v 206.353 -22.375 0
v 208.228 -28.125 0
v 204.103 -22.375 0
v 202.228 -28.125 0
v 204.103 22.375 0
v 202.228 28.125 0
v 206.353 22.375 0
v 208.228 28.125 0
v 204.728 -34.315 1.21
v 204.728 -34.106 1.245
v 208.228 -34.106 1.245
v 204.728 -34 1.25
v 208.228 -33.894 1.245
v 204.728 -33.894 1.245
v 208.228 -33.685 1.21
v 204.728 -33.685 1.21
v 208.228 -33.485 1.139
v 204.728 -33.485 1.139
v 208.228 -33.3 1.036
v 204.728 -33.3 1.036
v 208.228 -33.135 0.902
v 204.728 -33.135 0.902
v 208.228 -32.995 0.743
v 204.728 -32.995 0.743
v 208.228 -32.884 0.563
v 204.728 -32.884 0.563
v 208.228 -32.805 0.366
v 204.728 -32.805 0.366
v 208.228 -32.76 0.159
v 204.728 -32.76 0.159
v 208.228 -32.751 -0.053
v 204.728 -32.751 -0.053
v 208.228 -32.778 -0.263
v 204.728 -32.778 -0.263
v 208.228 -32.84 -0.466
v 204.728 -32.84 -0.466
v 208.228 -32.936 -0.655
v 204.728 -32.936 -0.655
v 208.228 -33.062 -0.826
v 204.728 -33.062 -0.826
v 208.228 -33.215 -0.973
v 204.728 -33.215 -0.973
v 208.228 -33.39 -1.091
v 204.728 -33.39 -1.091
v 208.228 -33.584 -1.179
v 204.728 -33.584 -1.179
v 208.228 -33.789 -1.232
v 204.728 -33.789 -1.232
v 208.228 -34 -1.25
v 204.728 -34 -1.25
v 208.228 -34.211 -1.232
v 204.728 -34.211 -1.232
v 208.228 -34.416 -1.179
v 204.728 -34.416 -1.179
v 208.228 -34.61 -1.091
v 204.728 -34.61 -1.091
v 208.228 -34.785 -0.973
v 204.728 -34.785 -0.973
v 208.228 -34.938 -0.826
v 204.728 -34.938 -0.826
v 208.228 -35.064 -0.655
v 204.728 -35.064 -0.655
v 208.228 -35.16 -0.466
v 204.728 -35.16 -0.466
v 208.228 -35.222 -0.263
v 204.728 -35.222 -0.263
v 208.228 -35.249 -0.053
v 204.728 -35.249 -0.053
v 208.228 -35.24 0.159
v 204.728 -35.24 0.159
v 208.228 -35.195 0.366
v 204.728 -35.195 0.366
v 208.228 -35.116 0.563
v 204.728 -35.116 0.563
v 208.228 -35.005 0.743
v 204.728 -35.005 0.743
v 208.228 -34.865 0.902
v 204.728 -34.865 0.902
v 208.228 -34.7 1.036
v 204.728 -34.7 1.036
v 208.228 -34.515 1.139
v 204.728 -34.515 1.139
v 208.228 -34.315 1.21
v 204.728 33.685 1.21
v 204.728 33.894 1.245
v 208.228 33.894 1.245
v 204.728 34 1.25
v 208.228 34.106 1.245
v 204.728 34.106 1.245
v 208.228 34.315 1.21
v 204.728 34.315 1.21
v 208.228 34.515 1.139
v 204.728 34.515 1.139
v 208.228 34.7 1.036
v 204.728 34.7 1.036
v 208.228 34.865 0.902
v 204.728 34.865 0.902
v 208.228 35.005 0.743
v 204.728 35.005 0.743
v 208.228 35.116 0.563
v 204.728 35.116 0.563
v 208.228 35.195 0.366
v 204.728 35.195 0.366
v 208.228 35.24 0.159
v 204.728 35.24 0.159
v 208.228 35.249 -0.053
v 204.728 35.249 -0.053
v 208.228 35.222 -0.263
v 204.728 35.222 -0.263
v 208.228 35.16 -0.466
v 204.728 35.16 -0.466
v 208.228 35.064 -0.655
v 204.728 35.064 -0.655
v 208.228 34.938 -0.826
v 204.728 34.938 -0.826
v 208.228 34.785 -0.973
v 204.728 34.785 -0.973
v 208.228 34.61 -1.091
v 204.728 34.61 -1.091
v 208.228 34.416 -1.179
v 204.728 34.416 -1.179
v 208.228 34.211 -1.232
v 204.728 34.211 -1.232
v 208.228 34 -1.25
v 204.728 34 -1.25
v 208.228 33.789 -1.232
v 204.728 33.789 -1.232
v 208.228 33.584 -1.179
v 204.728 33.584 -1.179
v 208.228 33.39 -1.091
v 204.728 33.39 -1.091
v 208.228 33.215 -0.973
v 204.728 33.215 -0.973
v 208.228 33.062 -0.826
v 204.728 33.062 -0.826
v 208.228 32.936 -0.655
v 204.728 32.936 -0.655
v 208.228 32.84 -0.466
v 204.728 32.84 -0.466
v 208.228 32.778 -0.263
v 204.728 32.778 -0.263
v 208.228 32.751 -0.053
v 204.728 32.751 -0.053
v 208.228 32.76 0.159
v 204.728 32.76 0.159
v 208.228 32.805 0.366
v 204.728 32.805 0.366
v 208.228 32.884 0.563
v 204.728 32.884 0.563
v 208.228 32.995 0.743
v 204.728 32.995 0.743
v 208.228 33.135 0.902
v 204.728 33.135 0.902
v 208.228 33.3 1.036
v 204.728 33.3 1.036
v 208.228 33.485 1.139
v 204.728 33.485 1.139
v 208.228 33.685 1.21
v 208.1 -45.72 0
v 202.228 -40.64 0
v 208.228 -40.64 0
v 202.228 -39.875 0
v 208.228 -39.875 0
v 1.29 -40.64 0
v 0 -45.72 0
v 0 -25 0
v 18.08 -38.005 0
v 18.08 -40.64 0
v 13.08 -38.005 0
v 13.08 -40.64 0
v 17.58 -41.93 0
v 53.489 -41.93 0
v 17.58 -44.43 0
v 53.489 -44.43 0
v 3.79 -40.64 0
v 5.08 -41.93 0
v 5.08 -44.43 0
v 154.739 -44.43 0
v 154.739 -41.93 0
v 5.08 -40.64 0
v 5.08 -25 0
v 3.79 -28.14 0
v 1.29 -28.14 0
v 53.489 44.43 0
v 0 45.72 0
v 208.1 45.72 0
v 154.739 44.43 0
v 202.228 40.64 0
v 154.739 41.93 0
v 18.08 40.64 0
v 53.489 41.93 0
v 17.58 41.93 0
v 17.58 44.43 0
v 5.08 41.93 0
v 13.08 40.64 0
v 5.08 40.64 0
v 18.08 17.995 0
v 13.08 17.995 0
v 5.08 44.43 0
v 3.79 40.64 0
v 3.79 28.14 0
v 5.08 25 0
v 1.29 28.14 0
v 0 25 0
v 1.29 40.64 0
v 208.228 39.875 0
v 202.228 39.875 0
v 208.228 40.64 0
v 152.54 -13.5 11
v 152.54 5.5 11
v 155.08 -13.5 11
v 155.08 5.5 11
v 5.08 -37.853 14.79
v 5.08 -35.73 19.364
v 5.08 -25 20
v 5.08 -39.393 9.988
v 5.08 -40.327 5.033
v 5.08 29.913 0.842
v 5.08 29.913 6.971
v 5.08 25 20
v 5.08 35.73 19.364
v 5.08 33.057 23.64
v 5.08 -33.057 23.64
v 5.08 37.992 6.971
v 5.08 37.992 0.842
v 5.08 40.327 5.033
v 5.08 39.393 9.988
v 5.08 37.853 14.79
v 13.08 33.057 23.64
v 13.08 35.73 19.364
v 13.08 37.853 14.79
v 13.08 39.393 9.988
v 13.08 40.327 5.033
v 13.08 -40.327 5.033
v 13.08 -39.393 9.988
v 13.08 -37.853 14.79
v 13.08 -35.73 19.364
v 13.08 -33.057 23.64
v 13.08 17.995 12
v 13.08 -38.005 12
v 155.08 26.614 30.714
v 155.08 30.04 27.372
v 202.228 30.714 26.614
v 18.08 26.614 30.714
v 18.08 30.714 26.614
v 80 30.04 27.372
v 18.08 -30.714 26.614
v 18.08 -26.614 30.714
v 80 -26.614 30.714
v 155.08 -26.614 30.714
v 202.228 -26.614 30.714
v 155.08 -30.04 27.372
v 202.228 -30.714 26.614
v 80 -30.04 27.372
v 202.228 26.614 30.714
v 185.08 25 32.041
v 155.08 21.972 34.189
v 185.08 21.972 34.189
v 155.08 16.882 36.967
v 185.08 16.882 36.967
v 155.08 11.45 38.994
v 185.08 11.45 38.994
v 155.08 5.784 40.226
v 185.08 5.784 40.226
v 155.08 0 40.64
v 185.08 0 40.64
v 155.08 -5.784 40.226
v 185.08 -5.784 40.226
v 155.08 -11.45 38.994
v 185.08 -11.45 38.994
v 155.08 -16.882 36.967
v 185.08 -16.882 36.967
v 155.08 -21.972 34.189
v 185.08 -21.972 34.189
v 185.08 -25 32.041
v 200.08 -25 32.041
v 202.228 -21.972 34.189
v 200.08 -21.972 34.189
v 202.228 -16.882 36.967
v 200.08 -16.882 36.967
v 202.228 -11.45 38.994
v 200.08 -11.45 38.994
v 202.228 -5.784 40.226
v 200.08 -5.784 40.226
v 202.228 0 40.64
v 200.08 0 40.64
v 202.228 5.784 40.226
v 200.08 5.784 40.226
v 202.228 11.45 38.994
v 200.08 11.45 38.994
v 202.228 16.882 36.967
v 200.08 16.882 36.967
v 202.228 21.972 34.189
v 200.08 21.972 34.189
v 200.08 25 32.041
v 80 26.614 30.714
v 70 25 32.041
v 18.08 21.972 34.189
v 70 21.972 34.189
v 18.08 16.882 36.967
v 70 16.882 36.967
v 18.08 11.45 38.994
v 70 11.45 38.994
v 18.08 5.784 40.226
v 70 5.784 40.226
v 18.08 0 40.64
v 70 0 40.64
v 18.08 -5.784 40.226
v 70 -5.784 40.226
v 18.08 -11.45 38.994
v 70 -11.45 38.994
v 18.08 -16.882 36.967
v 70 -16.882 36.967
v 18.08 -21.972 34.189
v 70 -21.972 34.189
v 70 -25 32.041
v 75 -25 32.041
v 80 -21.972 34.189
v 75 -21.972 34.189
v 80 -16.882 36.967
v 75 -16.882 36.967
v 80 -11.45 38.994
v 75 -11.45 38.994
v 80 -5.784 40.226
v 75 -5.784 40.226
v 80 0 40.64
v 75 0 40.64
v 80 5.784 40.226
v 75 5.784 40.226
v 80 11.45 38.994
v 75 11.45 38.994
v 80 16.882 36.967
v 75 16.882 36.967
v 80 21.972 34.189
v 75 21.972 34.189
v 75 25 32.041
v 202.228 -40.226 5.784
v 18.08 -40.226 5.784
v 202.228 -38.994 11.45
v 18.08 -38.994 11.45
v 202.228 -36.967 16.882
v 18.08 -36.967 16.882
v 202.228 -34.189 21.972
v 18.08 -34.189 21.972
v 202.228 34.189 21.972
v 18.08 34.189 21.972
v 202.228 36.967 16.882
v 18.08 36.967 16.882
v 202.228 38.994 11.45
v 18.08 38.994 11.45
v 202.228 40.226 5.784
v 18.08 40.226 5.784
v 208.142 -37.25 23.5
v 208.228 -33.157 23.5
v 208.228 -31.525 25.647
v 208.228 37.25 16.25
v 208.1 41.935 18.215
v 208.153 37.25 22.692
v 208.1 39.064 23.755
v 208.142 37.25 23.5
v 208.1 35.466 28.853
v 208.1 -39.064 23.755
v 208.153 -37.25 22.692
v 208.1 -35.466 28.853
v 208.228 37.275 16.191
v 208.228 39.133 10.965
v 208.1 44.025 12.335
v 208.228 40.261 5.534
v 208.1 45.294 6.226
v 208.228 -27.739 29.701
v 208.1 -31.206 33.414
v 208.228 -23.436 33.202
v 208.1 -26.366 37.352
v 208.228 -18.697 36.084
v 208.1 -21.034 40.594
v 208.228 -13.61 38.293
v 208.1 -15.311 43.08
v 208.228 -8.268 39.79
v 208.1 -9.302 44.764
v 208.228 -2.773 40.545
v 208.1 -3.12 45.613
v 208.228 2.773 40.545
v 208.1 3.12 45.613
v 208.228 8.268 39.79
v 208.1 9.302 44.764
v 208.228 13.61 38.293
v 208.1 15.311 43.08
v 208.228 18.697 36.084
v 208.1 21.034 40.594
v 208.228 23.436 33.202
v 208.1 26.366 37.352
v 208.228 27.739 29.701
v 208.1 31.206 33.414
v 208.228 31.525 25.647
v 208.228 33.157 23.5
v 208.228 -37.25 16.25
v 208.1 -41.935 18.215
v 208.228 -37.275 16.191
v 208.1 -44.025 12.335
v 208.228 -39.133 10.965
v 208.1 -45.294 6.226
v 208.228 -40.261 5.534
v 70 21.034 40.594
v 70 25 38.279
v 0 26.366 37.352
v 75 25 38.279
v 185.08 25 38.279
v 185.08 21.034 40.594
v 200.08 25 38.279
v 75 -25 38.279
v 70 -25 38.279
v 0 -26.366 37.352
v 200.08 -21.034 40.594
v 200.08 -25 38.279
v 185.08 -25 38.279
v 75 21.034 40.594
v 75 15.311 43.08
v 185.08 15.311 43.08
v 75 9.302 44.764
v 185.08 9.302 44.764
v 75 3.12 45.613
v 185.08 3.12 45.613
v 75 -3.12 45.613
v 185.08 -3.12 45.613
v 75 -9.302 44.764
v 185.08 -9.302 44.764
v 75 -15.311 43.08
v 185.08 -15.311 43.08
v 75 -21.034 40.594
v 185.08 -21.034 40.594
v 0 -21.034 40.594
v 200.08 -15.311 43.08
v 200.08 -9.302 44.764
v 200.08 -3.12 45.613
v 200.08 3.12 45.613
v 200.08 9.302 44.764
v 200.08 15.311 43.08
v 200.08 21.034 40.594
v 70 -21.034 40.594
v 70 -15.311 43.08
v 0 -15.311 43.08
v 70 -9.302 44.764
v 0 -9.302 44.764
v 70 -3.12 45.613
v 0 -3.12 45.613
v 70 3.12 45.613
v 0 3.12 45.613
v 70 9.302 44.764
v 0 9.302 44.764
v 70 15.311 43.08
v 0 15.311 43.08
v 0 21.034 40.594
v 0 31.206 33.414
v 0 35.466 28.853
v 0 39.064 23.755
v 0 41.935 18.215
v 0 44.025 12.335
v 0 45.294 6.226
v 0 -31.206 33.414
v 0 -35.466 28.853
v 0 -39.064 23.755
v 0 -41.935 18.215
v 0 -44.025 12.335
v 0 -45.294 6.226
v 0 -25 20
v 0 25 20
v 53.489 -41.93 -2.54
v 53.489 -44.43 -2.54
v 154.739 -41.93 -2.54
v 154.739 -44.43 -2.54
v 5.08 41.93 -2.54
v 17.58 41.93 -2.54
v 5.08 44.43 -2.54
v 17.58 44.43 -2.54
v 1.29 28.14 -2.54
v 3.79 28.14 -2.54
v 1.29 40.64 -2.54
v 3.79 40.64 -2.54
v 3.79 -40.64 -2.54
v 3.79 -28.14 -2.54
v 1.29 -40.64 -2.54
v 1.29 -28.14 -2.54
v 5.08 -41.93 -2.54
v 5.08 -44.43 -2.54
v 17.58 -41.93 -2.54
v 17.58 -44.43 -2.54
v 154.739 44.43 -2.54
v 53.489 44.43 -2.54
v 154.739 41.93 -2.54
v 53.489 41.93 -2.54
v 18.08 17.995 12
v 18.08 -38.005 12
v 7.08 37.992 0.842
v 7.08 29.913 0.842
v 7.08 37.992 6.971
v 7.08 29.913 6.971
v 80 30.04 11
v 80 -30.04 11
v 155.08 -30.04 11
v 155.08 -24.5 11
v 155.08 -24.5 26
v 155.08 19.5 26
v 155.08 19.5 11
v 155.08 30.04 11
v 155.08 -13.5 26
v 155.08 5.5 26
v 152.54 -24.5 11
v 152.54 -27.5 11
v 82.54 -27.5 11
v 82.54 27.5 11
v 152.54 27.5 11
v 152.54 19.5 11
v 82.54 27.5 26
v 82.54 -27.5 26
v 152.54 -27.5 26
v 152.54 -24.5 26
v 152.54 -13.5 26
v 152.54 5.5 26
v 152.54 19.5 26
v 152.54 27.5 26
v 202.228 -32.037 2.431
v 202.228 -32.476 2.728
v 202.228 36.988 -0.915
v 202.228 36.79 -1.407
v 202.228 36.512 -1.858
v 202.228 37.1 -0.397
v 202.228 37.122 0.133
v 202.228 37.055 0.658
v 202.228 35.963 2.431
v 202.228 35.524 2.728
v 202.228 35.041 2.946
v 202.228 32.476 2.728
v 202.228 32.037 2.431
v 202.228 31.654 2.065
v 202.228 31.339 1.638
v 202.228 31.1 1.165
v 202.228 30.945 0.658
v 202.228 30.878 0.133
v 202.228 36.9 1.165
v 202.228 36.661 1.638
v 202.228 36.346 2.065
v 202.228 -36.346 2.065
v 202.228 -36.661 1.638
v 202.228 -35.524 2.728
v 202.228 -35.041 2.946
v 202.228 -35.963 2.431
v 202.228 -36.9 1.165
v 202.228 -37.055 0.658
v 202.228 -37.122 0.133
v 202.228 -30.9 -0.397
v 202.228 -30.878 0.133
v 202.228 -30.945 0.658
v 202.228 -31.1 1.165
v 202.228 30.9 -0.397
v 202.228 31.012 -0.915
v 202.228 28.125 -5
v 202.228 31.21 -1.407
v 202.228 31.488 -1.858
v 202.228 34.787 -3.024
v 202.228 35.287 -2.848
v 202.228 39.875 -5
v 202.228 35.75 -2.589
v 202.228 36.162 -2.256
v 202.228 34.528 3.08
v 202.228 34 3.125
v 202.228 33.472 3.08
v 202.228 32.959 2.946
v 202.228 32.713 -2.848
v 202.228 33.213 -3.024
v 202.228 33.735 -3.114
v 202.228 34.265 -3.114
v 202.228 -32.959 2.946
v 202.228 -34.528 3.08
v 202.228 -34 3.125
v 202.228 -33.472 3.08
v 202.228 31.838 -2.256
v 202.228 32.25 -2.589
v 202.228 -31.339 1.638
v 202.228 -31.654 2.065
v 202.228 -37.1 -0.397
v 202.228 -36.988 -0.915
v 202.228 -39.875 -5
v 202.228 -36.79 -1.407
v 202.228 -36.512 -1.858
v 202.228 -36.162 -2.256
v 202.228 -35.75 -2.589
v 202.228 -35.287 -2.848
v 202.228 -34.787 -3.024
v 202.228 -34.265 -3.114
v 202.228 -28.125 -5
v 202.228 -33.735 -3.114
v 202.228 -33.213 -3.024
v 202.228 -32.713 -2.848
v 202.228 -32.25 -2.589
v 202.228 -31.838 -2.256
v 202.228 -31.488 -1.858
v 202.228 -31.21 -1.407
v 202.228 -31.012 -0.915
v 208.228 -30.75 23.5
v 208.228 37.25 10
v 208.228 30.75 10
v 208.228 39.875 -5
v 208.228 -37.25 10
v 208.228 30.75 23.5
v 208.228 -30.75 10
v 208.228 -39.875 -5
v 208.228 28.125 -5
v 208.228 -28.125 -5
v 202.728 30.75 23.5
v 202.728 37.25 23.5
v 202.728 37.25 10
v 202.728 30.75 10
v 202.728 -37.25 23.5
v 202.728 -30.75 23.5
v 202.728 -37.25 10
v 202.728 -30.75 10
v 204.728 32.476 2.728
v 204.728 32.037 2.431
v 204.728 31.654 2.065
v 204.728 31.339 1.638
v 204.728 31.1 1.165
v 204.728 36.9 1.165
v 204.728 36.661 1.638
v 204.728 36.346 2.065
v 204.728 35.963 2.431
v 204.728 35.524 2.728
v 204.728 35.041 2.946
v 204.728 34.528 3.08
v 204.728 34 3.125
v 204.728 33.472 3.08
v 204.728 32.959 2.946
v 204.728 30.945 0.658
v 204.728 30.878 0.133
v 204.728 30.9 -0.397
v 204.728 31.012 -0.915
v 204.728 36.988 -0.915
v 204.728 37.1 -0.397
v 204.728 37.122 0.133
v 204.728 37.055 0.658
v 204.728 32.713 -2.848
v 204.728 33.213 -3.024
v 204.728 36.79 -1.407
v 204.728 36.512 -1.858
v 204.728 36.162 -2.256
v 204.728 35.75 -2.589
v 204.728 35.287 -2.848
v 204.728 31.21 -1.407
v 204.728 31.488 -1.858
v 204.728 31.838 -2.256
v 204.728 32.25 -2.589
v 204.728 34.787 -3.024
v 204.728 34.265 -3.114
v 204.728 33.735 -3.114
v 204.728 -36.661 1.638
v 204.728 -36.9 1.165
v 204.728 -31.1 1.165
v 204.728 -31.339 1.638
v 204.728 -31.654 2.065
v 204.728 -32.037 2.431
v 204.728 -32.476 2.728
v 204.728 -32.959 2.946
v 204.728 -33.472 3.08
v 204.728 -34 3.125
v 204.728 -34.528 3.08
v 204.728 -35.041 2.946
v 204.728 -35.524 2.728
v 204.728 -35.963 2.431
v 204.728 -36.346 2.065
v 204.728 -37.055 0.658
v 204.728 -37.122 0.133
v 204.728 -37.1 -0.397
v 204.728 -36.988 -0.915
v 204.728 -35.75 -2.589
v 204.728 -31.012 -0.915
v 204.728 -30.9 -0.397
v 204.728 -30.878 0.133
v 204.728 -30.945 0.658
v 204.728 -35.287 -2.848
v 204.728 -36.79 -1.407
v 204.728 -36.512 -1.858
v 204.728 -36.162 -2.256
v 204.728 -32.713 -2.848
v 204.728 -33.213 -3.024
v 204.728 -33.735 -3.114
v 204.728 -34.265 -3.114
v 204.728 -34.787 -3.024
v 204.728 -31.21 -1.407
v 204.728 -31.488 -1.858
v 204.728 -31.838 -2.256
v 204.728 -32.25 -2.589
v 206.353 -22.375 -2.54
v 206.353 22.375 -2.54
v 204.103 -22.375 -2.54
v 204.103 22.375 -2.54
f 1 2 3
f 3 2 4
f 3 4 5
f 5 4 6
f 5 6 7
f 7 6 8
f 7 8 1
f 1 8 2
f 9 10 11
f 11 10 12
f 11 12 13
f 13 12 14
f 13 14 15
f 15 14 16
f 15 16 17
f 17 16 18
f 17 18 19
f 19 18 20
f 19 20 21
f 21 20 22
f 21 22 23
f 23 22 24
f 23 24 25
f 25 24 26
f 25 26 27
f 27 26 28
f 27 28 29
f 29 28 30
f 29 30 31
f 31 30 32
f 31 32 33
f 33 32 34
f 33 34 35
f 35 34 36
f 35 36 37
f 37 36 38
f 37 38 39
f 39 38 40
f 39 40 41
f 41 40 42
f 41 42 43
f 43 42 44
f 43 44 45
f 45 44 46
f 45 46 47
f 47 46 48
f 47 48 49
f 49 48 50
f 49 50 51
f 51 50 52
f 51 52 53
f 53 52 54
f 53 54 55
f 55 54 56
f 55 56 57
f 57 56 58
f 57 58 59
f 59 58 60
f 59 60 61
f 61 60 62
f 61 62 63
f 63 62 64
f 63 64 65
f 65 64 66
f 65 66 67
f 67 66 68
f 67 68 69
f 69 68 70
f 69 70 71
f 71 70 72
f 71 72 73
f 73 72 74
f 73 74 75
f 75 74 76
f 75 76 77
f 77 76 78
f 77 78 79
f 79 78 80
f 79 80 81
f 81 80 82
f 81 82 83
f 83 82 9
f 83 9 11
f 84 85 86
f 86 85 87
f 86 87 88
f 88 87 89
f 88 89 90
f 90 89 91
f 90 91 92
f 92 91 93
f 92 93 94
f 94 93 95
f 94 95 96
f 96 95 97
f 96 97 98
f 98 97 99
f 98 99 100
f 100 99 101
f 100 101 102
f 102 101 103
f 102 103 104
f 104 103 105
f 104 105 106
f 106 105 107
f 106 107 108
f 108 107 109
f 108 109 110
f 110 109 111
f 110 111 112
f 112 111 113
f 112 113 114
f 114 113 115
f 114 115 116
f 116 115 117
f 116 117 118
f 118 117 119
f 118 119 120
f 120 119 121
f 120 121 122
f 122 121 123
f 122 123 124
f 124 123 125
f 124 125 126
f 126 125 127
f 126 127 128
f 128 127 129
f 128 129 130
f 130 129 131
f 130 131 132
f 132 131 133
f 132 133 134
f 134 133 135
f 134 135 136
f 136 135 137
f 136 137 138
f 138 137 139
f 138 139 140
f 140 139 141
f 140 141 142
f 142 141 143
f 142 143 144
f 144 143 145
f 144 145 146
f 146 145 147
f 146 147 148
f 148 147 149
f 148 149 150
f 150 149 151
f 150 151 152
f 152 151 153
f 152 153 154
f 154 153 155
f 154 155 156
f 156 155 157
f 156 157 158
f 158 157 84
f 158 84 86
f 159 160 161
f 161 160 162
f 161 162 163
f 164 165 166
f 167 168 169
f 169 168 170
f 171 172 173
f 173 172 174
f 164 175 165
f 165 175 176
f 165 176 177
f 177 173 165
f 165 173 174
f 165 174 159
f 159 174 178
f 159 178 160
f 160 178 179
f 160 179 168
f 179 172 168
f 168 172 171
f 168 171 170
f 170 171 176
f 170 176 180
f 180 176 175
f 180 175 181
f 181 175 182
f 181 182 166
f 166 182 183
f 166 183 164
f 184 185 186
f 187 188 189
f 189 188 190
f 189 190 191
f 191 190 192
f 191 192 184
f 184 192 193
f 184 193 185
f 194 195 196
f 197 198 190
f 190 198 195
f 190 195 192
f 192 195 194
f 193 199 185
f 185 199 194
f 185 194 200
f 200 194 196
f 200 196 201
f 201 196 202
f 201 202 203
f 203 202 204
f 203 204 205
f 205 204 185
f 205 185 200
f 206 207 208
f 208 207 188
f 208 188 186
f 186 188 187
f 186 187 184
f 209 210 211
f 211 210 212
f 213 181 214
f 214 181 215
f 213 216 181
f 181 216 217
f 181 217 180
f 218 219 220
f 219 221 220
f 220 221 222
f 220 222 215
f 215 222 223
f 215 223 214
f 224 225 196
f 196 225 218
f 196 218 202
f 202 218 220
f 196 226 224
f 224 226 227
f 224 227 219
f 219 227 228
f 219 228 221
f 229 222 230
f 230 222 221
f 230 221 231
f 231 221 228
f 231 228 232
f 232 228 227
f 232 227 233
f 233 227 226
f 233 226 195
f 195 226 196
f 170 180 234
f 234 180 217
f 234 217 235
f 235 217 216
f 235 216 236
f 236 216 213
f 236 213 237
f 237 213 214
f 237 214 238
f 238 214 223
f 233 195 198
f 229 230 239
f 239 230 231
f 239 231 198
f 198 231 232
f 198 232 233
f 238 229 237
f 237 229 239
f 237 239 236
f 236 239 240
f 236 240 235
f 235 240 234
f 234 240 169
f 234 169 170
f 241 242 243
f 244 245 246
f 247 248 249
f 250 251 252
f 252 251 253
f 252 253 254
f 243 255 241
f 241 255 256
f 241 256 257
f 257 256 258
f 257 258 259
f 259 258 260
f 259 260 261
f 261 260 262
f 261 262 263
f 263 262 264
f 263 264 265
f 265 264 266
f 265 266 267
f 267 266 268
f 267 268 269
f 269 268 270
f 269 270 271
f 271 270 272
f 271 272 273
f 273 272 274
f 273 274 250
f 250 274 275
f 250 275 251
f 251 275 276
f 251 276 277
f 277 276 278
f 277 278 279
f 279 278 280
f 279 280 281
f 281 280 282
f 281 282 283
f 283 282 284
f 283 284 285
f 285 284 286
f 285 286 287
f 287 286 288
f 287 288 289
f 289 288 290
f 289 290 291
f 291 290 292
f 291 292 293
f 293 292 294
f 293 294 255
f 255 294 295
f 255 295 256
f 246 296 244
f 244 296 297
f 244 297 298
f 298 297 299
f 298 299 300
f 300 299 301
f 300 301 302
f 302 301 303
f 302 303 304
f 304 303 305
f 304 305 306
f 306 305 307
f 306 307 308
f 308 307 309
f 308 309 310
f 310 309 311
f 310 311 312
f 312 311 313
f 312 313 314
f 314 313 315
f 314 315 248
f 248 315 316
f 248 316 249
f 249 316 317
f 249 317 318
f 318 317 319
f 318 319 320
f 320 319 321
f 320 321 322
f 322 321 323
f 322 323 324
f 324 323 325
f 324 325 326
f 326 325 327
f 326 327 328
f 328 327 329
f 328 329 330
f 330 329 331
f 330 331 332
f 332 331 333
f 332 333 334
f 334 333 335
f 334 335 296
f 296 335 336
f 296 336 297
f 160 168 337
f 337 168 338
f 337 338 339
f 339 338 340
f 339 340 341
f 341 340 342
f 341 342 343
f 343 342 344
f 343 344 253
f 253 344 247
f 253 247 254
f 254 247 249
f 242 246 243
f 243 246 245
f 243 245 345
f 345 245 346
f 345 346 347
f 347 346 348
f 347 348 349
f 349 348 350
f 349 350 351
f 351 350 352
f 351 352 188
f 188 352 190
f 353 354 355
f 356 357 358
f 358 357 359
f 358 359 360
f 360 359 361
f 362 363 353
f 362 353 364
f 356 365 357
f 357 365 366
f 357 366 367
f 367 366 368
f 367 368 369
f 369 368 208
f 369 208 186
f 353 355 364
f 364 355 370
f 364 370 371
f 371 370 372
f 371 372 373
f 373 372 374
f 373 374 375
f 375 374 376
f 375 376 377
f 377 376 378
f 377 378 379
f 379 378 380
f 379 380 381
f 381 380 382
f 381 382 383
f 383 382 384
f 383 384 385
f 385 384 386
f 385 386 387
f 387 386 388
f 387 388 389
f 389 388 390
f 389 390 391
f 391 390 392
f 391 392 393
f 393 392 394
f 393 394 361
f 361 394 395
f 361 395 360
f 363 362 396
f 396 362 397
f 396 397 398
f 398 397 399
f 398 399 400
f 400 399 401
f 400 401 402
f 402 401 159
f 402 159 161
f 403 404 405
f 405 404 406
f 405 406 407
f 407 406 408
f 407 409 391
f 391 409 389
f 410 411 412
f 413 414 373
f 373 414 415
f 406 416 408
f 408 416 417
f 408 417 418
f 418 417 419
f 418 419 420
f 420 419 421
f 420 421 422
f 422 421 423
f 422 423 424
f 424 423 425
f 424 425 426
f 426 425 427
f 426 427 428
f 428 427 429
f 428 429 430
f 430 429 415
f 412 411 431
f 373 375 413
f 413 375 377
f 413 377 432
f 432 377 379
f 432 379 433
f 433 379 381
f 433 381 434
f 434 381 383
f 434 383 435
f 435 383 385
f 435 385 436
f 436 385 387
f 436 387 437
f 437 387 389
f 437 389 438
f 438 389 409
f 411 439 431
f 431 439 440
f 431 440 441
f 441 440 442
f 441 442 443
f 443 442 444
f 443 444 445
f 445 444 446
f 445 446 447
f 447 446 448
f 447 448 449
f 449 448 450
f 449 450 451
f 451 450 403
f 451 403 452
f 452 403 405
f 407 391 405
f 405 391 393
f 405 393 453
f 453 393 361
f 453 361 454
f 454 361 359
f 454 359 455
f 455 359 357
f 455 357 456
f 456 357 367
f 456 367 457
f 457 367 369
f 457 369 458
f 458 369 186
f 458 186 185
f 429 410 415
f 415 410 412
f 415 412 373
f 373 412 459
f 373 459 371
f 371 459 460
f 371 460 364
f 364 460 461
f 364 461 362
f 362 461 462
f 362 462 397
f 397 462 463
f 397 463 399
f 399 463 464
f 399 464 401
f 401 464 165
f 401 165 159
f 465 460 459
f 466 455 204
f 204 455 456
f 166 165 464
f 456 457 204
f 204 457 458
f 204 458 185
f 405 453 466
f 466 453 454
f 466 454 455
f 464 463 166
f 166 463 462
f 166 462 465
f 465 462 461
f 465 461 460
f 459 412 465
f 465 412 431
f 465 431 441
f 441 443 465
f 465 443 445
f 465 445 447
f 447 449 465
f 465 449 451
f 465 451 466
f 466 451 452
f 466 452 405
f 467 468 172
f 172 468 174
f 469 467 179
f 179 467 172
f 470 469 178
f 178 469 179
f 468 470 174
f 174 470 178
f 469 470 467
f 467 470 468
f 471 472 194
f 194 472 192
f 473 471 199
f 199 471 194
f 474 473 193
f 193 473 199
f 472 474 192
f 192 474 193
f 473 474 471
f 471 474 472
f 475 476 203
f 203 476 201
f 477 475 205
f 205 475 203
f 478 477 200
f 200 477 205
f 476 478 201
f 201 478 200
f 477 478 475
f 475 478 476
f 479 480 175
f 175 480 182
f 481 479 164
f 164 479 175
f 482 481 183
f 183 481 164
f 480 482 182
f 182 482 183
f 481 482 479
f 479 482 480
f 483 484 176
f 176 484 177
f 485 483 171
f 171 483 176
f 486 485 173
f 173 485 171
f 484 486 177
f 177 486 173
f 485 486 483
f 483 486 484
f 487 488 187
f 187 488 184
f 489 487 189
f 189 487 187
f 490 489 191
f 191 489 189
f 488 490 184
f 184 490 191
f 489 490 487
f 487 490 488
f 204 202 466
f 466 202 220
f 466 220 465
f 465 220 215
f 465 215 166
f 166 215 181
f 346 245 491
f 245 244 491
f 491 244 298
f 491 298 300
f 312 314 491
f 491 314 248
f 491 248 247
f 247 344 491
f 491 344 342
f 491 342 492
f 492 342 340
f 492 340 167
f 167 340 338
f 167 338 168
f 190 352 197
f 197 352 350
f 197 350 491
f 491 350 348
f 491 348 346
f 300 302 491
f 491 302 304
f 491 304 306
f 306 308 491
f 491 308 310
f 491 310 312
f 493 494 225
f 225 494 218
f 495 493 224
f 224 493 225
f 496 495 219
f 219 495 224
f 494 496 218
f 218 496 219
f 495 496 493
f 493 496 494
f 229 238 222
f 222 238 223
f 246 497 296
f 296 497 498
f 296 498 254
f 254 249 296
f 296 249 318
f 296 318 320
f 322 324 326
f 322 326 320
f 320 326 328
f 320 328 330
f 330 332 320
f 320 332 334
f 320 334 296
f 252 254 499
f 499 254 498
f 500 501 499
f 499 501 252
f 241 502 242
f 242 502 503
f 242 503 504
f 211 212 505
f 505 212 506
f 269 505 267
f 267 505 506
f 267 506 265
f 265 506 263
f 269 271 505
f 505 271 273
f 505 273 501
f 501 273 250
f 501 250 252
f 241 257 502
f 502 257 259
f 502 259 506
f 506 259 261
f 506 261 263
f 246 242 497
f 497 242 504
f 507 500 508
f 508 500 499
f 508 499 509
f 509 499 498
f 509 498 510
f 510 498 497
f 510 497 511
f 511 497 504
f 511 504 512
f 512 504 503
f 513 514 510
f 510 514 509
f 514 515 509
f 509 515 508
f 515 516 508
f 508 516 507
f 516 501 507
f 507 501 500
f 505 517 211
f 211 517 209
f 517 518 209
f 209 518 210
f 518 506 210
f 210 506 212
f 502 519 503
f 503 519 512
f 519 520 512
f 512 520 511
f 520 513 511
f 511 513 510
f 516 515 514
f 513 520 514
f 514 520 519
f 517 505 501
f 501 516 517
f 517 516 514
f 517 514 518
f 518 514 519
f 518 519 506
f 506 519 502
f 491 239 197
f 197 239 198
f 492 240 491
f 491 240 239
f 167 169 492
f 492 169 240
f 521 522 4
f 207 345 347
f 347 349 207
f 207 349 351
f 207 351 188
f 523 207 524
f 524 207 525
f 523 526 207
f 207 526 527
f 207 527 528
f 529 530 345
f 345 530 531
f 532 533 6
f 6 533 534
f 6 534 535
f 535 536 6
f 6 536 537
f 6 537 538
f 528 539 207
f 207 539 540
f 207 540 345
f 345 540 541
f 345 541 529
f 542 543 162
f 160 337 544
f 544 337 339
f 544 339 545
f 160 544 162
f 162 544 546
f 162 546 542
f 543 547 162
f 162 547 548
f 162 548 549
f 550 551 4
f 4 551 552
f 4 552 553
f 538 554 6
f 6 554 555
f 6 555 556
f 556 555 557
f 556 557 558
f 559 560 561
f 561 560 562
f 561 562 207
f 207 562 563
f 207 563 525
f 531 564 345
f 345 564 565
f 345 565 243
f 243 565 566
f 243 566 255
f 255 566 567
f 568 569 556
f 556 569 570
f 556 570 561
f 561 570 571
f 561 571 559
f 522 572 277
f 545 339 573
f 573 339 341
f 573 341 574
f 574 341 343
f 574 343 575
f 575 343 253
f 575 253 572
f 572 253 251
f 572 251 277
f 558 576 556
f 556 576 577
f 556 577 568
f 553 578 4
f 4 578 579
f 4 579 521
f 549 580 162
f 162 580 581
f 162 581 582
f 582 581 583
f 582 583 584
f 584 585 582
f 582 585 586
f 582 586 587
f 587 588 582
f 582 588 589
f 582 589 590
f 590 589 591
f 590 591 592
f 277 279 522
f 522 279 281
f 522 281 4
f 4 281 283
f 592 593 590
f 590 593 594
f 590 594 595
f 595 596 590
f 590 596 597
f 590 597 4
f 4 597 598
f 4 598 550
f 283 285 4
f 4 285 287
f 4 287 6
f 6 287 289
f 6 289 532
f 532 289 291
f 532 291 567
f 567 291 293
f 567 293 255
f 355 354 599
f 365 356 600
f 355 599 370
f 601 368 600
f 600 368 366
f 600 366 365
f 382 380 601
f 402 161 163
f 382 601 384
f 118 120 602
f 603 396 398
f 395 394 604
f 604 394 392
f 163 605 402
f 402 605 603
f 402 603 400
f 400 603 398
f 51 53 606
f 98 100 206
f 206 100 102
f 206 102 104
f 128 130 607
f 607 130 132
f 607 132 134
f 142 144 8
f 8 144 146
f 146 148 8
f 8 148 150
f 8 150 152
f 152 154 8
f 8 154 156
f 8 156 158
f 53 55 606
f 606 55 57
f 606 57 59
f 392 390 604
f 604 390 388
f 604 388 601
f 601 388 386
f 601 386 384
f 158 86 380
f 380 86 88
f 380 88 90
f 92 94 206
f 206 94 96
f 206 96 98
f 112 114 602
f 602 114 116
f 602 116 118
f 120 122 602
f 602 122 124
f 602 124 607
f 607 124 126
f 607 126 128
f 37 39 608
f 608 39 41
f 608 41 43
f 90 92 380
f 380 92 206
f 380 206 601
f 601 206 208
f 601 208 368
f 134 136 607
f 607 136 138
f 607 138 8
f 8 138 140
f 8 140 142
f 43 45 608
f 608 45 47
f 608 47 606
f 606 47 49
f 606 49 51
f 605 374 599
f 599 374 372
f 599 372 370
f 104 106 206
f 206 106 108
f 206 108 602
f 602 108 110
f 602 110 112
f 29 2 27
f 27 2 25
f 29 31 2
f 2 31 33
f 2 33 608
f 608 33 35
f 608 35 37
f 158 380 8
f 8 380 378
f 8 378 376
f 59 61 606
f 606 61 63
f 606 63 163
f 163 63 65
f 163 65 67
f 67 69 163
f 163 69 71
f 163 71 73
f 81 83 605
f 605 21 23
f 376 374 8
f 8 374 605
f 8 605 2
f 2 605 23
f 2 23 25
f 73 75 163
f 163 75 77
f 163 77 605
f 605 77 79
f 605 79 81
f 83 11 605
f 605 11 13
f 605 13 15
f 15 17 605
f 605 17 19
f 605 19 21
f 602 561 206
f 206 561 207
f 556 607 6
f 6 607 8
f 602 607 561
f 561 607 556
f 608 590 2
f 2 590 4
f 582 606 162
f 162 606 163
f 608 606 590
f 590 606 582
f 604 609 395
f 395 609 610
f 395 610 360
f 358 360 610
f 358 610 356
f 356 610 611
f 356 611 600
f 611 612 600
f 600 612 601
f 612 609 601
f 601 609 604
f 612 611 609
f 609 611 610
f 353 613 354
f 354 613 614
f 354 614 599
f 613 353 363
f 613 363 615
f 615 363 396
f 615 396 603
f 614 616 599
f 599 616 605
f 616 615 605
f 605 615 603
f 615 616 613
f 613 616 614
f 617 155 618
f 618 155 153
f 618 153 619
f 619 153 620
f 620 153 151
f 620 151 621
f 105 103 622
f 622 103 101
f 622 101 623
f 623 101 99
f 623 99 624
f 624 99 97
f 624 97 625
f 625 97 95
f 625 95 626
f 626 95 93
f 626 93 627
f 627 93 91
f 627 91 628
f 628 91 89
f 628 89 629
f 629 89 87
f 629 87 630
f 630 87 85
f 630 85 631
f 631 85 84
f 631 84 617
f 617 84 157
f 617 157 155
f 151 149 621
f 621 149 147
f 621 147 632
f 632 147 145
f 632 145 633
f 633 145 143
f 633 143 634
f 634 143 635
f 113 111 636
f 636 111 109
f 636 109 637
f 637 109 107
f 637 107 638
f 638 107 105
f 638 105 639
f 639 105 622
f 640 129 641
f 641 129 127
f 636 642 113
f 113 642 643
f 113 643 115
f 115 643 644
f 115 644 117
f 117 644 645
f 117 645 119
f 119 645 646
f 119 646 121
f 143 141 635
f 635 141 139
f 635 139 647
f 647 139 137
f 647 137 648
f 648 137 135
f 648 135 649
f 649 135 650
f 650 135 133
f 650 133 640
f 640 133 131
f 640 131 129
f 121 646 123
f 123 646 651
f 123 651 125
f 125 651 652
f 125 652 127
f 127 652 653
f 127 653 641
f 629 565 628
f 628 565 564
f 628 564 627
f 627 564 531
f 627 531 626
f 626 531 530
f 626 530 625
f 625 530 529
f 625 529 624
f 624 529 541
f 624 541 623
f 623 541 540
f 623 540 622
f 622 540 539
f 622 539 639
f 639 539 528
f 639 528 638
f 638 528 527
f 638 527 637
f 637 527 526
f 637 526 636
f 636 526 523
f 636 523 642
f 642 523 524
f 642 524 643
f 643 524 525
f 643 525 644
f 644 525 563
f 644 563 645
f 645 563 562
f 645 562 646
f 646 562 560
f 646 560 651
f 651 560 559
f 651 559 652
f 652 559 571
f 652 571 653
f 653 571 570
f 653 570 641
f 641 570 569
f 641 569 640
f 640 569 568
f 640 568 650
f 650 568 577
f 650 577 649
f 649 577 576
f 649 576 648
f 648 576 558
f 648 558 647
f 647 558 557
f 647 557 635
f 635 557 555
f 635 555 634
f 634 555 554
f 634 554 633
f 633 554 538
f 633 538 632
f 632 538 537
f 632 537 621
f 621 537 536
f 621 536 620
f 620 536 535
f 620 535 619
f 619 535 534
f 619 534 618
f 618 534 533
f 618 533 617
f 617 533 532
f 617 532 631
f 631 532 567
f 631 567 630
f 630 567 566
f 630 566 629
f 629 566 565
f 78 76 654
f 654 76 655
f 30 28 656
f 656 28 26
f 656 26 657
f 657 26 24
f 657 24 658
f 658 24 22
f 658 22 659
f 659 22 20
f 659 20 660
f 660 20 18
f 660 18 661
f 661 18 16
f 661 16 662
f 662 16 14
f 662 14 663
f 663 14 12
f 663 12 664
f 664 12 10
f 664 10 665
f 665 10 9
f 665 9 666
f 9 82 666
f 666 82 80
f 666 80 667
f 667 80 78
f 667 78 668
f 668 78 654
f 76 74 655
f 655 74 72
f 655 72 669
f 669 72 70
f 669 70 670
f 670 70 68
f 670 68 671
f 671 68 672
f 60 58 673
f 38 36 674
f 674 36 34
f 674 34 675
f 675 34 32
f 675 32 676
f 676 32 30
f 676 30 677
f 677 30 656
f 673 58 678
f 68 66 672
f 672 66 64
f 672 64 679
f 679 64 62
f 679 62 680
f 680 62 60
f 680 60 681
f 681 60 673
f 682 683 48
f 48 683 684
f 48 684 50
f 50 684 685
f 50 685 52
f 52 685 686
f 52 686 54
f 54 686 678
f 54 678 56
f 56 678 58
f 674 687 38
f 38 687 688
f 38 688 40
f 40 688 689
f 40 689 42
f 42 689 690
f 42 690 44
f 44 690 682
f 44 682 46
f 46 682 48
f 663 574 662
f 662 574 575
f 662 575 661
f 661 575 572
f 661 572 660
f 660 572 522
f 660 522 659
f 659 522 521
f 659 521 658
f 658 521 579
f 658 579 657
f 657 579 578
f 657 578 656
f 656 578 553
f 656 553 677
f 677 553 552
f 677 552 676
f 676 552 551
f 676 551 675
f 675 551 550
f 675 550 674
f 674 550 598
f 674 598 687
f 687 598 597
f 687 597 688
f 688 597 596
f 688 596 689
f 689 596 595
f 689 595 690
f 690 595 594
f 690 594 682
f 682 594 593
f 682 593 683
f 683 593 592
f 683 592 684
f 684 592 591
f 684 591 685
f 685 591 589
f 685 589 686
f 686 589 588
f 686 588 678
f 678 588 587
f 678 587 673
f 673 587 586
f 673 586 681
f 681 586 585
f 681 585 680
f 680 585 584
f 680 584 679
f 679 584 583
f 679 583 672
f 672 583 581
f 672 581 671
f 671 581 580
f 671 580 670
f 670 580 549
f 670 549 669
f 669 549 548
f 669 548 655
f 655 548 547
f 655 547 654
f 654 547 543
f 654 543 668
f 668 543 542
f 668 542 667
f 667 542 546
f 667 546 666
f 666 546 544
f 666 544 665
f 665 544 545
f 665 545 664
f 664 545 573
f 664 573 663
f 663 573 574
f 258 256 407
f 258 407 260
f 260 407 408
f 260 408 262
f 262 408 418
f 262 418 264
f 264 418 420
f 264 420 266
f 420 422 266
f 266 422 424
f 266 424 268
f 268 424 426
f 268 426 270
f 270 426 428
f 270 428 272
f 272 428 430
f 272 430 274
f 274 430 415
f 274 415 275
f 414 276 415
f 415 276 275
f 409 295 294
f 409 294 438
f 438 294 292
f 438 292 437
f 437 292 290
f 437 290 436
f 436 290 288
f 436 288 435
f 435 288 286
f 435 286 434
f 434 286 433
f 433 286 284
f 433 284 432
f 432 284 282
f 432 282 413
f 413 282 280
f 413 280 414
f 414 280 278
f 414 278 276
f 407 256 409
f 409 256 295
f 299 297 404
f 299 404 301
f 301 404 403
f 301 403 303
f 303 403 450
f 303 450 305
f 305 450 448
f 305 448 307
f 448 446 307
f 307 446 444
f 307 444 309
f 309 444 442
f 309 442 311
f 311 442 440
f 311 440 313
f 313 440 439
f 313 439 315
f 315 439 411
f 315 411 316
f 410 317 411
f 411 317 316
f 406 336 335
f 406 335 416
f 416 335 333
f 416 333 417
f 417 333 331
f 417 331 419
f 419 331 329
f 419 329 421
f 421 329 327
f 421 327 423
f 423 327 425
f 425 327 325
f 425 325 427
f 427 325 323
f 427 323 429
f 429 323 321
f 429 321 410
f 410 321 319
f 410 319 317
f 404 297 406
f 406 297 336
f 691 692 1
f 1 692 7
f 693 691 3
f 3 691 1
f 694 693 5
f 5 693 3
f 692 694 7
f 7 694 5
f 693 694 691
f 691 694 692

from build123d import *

# Parameters (mm, degrees)
REVOLVE2_ANGLE           = 180
SKETCH5_W                = 2.5
SKETCH5_H                = 12.5
SKETCH5_W_2              = 101.25
SKETCH5_H_2              = 2.5
SKETCH5_W_3              = 12.5
BOSS_EXTRUDE1_DEPTH      = 2.54
SKETCH7_W                = 20
SKETCH7_H                = 50
CUT_EXTRUDE1_DEPTH       = 7
BOSS_EXTRUDE3_REACH      = 220.035
SKETCH8_W                = 5
SKETCH8_H                = 91.44
SKETCH9_W                = 6.129296028
SKETCH9_H                = 8.078685473
BOSS_EXTRUDE4_DEPTH      = 2
BOSS_EXTRUDE7_START      = 8
BOSS_EXTRUDE7_DEPTH      = 8
BOSS_EXTRUDE8_REACH      = 220.035
BOSS_EXTRUDE8_END_RADIUS = 40.64
SKETCH13_W               = 75.08
SKETCH13_H               = 60.08
SKETCH13_W_2             = 70
SKETCH13_H_2             = 55
SKETCH14_W               = 75.08
SKETCH14_H               = 60.08
CUT_EXTRUDE3_DEPTH       = 11
BOSS_EXTRUDE9_REACH      = 217.997
SKETCH15_W               = 70
SKETCH15_H               = 55
CUT_EXTRUDE5_DEPTH       = 15
CUT_EXTRUDE6_REACH       = 202.84
SKETCH18_W               = 12
SKETCH18_H               = 56
BOSS_EXTRUDE10_REACH     = 220.035
SKETCH23_W               = 6
SKETCH23_H               = 81.28
SKETCH26_W               = 6
SKETCH26_H               = 11.75
BOSS_EXTRUDE11_DEPTH     = 5
SKETCH27_W               = 13.5
SKETCH27_H               = 6.5
CUT_EXTRUDE7_DEPTH       = 5.5
CUT_EXTRUDE8_REACH       = 220.035
SKETCH28_R               = 1.25
SKETCH29_R               = 3.125
CUT_EXTRUDE9_DEPTH       = 2.5
SKETCH30_W               = 5
SKETCH30_H               = 50
SKETCH30_W_2             = 15
CUT_EXTRUDE10_DEPTH      = 216.996710059
SKETCH32_W               = 2.25
SKETCH32_H               = 44.75
BOSS_EXTRUDE12_DEPTH     = 2.54


with BuildPart() as part:
    # Sketch2 → Revolve2 (revolve)
    with BuildSketch(Plane.XY):
        Polygon((0, 0), (0, 40.64), (0, 45.72), (25.4, 45.72), (195.4, 45.72), (208.1, 45.72), (208.22771659, 40.64), (195.52771659, 40.64), (25.4, 40.64), (5.08, 40.64), (5.08, 0), align=None)
    revolve(axis=Axis((0, 0, 0), (1, 0, 0)), revolution_arc=REVOLVE2_ANGLE)

    # Sketch5 → Boss-Extrude1 (add)
    with BuildSketch(Plane(origin=(0, 0, 0), x_dir=(-1, 0, 0), z_dir=(0, 0, -1))):
        with Locations((-2.54, 34.39)):
            Rectangle(SKETCH5_W, SKETCH5_H)
        with Locations((-104.113858295, -43.18)):
            Rectangle(SKETCH5_W_2, SKETCH5_H_2)
        with Locations((-11.33, 43.18)):
            Rectangle(SKETCH5_W_3, SKETCH5_H_2)
        with Locations((-104.113858295, 43.18)):
            Rectangle(SKETCH5_W_2, SKETCH5_H_2)
        with Locations((-11.33, -43.18)):
            Rectangle(SKETCH5_W_3, SKETCH5_H_2)
        with Locations((-2.54, -34.39)):
            Rectangle(SKETCH5_W, SKETCH5_H)
    extrude(amount=BOSS_EXTRUDE1_DEPTH)

    # Sketch7 → Cut-Extrude1 (cut)
    with BuildSketch(Plane.ZY):
        with Locations((10, 0)):
            Rectangle(SKETCH7_W, SKETCH7_H)
    extrude(amount=-CUT_EXTRUDE1_DEPTH, mode=Mode.SUBTRACT)

    # Sketch8 → Boss-Extrude3 (add, up to next)
    with BuildSketch(Plane(origin=(0, 0, 0), x_dir=(-1, 0, 0), z_dir=(0, 0, -1)), mode=Mode.PRIVATE) as boss_extrude3_sk1:
        with Locations((-15.58, 0)):
            Rectangle(SKETCH8_W, SKETCH8_H)
    boss_extrude3_tool1 = extrude(boss_extrude3_sk1.sketch, amount=-BOSS_EXTRUDE3_REACH, mode=Mode.PRIVATE) - part.part
    add(boss_extrude3_tool1.solids().sort_by_distance((15.58, 0, 0))[0])

    # Sketch9 → Boss-Extrude4 (add)
    with BuildSketch(Plane(origin=(5.08, 0, 0), x_dir=(0, 0, -1), z_dir=(1, 0, 0))):
        with Locations((-3.906446672, 33.952493663)):
            Rectangle(SKETCH9_W, SKETCH9_H)
    extrude(amount=BOSS_EXTRUDE4_DEPTH)

    # Sketch12 → Boss-Extrude7 (add)
    with BuildSketch(Plane.ZY.offset(-13.08).offset(BOSS_EXTRUDE7_START)):
        with BuildLine():
            Line((23.64, 33.056920607), (23.64, -33.056920607))
            ThreePointArc((23.64, -33.056920607), (40.64, 0), (23.64, 33.056920607))
        make_face()
    extrude(amount=-BOSS_EXTRUDE7_DEPTH)

    # Boss-Extrude8: up to this cylinder (the profile starts inside it)
    boss_extrude8_end = Plane(origin=(117.54, 0, 0), z_dir=(-1, 0, 0)) * Cylinder(BOSS_EXTRUDE8_END_RADIUS, 522.35, mode=Mode.PRIVATE)
    # Sketch13 → Boss-Extrude8 (add, up to the surface)
    with BuildSketch(Plane(origin=(0, 0, 0), x_dir=(-1, 0, 0), z_dir=(0, 0, -1)), mode=Mode.PRIVATE) as boss_extrude8_sk1:
        with Locations((-117.54, 0)):
            Rectangle(SKETCH13_W, SKETCH13_H)
        with Locations((-117.54, 0)):
            Rectangle(SKETCH13_W_2, SKETCH13_H_2, mode=Mode.SUBTRACT)
    boss_extrude8_tool1 = extrude(boss_extrude8_sk1.sketch, amount=-BOSS_EXTRUDE8_REACH, mode=Mode.PRIVATE) & boss_extrude8_end
    add(boss_extrude8_tool1.solids().sort_by_distance((117.54, 29.078407, 0))[0])

    # Sketch14 → Cut-Extrude3 (cut)
    with BuildSketch(Plane(origin=(0, 0, 0), x_dir=(-1, 0, 0), z_dir=(0, 0, -1))):
        with Locations((-117.54, 0)):
            Rectangle(SKETCH14_W, SKETCH14_H)
    extrude(amount=-CUT_EXTRUDE3_DEPTH, mode=Mode.SUBTRACT)

    # Sketch15 → Boss-Extrude9 (add, up to next)
    with BuildSketch(Plane(origin=(0, 0, 11), x_dir=(-1, 0, 0), z_dir=(0, 0, -1)), mode=Mode.PRIVATE) as boss_extrude9_sk1:
        with Locations((-117.54, 0)):
            Rectangle(SKETCH15_W, SKETCH15_H)
    boss_extrude9_tool1 = extrude(boss_extrude9_sk1.sketch, amount=-BOSS_EXTRUDE9_REACH, mode=Mode.PRIVATE) - part.part
    add(boss_extrude9_tool1.solids().sort_by_distance((117.54, 0, 11))[0])

    # Sketch17 → Cut-Extrude5 (cut)
    with BuildSketch(Plane(origin=(0, 0, 11), x_dir=(-1, 0, 0), z_dir=(0, 0, -1))):
        Polygon((-82.54, 27.5), (-152.54, 27.5), (-152.54, 19.5), (-155.08, 19.5), (-155.08, 5.5), (-152.54, 5.5), (-152.54, -13.5), (-155.08, -13.5), (-155.08, -24.5), (-152.54, -24.5), (-152.54, -27.5), (-82.54, -27.5), align=None)
    extrude(amount=-CUT_EXTRUDE5_DEPTH, mode=Mode.SUBTRACT)

    # Sketch18 → Cut-Extrude6 (cut, up to next)
    with BuildSketch(Plane(origin=(18.08, 0, 0), x_dir=(0, 0, -1), z_dir=(1, 0, 0)), mode=Mode.PRIVATE) as cut_extrude6_sk1:
        with Locations((-6, -10.004795356)):
            Rectangle(SKETCH18_W, SKETCH18_H)
    cut_extrude6_tool1 = extrude(cut_extrude6_sk1.sketch, amount=-CUT_EXTRUDE6_REACH, mode=Mode.PRIVATE) & part.part
    add(cut_extrude6_tool1.solids().sort_by_distance((18.08, -10.004795, 6))[0], mode=Mode.SUBTRACT)

    # Sketch23 → Boss-Extrude10 (add, up to next)
    with BuildSketch(Plane(origin=(0, 0, 0), x_dir=(-1, 0, 0), z_dir=(0, 0, -1)), mode=Mode.PRIVATE) as boss_extrude10_sk1:
        with Locations((-205.22771659, 0)):
            Rectangle(SKETCH23_W, SKETCH23_H)
    boss_extrude10_tool1 = extrude(boss_extrude10_sk1.sketch, amount=-BOSS_EXTRUDE10_REACH, mode=Mode.PRIVATE) - part.part
    add(boss_extrude10_tool1.solids().sort_by_distance((205.227717, 0, 0))[0])

    # Sketch26 → Boss-Extrude11 (add)
    with BuildSketch(Plane(origin=(0, 0, 0), x_dir=(-1, 0, 0), z_dir=(0, 0, -1))):
        with Locations((-205.22771659, 34)):
            Rectangle(SKETCH26_W, SKETCH26_H)
        with Locations((-205.22771659, -34)):
            Rectangle(SKETCH26_W, SKETCH26_H)
    extrude(amount=BOSS_EXTRUDE11_DEPTH)

    # Sketch27 → Cut-Extrude7 (cut)
    with BuildSketch(Plane(origin=(208.22771659, 0, 0), x_dir=(0, 0, -1), z_dir=(1, 0, 0))):
        with Locations((-16.75, -34)):
            Rectangle(SKETCH27_W, SKETCH27_H)
        with Locations((-16.75, 34)):
            Rectangle(SKETCH27_W, SKETCH27_H)
    extrude(amount=-CUT_EXTRUDE7_DEPTH, mode=Mode.SUBTRACT)

    # Sketch28 → Cut-Extrude8 (cut, up to next)
    with BuildSketch(Plane(origin=(208.22771659, 0, 0), x_dir=(0, 0, -1), z_dir=(1, 0, 0)), mode=Mode.PRIVATE) as cut_extrude8_sk1:
        with Locations((0, 34)):
            Circle(SKETCH28_R)
    cut_extrude8_tool1 = extrude(cut_extrude8_sk1.sketch, amount=-CUT_EXTRUDE8_REACH, mode=Mode.PRIVATE) & part.part
    # Sketch28 → Cut-Extrude8 (cut, up to next)
    with BuildSketch(Plane(origin=(208.22771659, 0, 0), x_dir=(0, 0, -1), z_dir=(1, 0, 0)), mode=Mode.PRIVATE) as cut_extrude8_sk2:
        with Locations((0, -34)):
            Circle(SKETCH28_R)
    cut_extrude8_tool2 = extrude(cut_extrude8_sk2.sketch, amount=-CUT_EXTRUDE8_REACH, mode=Mode.PRIVATE) & part.part
    add(cut_extrude8_tool1.solids().sort_by_distance((208.227717, 34, 0))[0], mode=Mode.SUBTRACT)
    add(cut_extrude8_tool2.solids().sort_by_distance((208.227717, -34, 0))[0], mode=Mode.SUBTRACT)

    # Sketch29 → Cut-Extrude9 (cut)
    with BuildSketch(Plane.ZY.offset(-202.22771659)):
        with Locations((0, -34)):
            Circle(SKETCH29_R)
        with Locations((0, 34)):
            Circle(SKETCH29_R)
    extrude(amount=-CUT_EXTRUDE9_DEPTH, mode=Mode.SUBTRACT)

    # Sketch30 → Cut-Extrude10 (cut, through all)
    with BuildSketch(Plane(origin=(0, 0, 11), x_dir=(-1, 0, 0), z_dir=(0, 0, -1))):
        with Locations((-72.5, 0)):
            Rectangle(SKETCH30_W, SKETCH30_H)
        with Locations((-192.58, 0)):
            Rectangle(SKETCH30_W_2, SKETCH30_H)
    extrude(amount=-CUT_EXTRUDE10_DEPTH, mode=Mode.SUBTRACT)

    # Sketch32 → Boss-Extrude12 (add)
    with BuildSketch(Plane(origin=(0, 0, 0), x_dir=(-1, 0, 0), z_dir=(0, 0, -1))):
        with Locations((-205.22771659, 0)):
            Rectangle(SKETCH32_W, SKETCH32_H)
    extrude(amount=BOSS_EXTRUDE12_DEPTH)


solid = part.part
